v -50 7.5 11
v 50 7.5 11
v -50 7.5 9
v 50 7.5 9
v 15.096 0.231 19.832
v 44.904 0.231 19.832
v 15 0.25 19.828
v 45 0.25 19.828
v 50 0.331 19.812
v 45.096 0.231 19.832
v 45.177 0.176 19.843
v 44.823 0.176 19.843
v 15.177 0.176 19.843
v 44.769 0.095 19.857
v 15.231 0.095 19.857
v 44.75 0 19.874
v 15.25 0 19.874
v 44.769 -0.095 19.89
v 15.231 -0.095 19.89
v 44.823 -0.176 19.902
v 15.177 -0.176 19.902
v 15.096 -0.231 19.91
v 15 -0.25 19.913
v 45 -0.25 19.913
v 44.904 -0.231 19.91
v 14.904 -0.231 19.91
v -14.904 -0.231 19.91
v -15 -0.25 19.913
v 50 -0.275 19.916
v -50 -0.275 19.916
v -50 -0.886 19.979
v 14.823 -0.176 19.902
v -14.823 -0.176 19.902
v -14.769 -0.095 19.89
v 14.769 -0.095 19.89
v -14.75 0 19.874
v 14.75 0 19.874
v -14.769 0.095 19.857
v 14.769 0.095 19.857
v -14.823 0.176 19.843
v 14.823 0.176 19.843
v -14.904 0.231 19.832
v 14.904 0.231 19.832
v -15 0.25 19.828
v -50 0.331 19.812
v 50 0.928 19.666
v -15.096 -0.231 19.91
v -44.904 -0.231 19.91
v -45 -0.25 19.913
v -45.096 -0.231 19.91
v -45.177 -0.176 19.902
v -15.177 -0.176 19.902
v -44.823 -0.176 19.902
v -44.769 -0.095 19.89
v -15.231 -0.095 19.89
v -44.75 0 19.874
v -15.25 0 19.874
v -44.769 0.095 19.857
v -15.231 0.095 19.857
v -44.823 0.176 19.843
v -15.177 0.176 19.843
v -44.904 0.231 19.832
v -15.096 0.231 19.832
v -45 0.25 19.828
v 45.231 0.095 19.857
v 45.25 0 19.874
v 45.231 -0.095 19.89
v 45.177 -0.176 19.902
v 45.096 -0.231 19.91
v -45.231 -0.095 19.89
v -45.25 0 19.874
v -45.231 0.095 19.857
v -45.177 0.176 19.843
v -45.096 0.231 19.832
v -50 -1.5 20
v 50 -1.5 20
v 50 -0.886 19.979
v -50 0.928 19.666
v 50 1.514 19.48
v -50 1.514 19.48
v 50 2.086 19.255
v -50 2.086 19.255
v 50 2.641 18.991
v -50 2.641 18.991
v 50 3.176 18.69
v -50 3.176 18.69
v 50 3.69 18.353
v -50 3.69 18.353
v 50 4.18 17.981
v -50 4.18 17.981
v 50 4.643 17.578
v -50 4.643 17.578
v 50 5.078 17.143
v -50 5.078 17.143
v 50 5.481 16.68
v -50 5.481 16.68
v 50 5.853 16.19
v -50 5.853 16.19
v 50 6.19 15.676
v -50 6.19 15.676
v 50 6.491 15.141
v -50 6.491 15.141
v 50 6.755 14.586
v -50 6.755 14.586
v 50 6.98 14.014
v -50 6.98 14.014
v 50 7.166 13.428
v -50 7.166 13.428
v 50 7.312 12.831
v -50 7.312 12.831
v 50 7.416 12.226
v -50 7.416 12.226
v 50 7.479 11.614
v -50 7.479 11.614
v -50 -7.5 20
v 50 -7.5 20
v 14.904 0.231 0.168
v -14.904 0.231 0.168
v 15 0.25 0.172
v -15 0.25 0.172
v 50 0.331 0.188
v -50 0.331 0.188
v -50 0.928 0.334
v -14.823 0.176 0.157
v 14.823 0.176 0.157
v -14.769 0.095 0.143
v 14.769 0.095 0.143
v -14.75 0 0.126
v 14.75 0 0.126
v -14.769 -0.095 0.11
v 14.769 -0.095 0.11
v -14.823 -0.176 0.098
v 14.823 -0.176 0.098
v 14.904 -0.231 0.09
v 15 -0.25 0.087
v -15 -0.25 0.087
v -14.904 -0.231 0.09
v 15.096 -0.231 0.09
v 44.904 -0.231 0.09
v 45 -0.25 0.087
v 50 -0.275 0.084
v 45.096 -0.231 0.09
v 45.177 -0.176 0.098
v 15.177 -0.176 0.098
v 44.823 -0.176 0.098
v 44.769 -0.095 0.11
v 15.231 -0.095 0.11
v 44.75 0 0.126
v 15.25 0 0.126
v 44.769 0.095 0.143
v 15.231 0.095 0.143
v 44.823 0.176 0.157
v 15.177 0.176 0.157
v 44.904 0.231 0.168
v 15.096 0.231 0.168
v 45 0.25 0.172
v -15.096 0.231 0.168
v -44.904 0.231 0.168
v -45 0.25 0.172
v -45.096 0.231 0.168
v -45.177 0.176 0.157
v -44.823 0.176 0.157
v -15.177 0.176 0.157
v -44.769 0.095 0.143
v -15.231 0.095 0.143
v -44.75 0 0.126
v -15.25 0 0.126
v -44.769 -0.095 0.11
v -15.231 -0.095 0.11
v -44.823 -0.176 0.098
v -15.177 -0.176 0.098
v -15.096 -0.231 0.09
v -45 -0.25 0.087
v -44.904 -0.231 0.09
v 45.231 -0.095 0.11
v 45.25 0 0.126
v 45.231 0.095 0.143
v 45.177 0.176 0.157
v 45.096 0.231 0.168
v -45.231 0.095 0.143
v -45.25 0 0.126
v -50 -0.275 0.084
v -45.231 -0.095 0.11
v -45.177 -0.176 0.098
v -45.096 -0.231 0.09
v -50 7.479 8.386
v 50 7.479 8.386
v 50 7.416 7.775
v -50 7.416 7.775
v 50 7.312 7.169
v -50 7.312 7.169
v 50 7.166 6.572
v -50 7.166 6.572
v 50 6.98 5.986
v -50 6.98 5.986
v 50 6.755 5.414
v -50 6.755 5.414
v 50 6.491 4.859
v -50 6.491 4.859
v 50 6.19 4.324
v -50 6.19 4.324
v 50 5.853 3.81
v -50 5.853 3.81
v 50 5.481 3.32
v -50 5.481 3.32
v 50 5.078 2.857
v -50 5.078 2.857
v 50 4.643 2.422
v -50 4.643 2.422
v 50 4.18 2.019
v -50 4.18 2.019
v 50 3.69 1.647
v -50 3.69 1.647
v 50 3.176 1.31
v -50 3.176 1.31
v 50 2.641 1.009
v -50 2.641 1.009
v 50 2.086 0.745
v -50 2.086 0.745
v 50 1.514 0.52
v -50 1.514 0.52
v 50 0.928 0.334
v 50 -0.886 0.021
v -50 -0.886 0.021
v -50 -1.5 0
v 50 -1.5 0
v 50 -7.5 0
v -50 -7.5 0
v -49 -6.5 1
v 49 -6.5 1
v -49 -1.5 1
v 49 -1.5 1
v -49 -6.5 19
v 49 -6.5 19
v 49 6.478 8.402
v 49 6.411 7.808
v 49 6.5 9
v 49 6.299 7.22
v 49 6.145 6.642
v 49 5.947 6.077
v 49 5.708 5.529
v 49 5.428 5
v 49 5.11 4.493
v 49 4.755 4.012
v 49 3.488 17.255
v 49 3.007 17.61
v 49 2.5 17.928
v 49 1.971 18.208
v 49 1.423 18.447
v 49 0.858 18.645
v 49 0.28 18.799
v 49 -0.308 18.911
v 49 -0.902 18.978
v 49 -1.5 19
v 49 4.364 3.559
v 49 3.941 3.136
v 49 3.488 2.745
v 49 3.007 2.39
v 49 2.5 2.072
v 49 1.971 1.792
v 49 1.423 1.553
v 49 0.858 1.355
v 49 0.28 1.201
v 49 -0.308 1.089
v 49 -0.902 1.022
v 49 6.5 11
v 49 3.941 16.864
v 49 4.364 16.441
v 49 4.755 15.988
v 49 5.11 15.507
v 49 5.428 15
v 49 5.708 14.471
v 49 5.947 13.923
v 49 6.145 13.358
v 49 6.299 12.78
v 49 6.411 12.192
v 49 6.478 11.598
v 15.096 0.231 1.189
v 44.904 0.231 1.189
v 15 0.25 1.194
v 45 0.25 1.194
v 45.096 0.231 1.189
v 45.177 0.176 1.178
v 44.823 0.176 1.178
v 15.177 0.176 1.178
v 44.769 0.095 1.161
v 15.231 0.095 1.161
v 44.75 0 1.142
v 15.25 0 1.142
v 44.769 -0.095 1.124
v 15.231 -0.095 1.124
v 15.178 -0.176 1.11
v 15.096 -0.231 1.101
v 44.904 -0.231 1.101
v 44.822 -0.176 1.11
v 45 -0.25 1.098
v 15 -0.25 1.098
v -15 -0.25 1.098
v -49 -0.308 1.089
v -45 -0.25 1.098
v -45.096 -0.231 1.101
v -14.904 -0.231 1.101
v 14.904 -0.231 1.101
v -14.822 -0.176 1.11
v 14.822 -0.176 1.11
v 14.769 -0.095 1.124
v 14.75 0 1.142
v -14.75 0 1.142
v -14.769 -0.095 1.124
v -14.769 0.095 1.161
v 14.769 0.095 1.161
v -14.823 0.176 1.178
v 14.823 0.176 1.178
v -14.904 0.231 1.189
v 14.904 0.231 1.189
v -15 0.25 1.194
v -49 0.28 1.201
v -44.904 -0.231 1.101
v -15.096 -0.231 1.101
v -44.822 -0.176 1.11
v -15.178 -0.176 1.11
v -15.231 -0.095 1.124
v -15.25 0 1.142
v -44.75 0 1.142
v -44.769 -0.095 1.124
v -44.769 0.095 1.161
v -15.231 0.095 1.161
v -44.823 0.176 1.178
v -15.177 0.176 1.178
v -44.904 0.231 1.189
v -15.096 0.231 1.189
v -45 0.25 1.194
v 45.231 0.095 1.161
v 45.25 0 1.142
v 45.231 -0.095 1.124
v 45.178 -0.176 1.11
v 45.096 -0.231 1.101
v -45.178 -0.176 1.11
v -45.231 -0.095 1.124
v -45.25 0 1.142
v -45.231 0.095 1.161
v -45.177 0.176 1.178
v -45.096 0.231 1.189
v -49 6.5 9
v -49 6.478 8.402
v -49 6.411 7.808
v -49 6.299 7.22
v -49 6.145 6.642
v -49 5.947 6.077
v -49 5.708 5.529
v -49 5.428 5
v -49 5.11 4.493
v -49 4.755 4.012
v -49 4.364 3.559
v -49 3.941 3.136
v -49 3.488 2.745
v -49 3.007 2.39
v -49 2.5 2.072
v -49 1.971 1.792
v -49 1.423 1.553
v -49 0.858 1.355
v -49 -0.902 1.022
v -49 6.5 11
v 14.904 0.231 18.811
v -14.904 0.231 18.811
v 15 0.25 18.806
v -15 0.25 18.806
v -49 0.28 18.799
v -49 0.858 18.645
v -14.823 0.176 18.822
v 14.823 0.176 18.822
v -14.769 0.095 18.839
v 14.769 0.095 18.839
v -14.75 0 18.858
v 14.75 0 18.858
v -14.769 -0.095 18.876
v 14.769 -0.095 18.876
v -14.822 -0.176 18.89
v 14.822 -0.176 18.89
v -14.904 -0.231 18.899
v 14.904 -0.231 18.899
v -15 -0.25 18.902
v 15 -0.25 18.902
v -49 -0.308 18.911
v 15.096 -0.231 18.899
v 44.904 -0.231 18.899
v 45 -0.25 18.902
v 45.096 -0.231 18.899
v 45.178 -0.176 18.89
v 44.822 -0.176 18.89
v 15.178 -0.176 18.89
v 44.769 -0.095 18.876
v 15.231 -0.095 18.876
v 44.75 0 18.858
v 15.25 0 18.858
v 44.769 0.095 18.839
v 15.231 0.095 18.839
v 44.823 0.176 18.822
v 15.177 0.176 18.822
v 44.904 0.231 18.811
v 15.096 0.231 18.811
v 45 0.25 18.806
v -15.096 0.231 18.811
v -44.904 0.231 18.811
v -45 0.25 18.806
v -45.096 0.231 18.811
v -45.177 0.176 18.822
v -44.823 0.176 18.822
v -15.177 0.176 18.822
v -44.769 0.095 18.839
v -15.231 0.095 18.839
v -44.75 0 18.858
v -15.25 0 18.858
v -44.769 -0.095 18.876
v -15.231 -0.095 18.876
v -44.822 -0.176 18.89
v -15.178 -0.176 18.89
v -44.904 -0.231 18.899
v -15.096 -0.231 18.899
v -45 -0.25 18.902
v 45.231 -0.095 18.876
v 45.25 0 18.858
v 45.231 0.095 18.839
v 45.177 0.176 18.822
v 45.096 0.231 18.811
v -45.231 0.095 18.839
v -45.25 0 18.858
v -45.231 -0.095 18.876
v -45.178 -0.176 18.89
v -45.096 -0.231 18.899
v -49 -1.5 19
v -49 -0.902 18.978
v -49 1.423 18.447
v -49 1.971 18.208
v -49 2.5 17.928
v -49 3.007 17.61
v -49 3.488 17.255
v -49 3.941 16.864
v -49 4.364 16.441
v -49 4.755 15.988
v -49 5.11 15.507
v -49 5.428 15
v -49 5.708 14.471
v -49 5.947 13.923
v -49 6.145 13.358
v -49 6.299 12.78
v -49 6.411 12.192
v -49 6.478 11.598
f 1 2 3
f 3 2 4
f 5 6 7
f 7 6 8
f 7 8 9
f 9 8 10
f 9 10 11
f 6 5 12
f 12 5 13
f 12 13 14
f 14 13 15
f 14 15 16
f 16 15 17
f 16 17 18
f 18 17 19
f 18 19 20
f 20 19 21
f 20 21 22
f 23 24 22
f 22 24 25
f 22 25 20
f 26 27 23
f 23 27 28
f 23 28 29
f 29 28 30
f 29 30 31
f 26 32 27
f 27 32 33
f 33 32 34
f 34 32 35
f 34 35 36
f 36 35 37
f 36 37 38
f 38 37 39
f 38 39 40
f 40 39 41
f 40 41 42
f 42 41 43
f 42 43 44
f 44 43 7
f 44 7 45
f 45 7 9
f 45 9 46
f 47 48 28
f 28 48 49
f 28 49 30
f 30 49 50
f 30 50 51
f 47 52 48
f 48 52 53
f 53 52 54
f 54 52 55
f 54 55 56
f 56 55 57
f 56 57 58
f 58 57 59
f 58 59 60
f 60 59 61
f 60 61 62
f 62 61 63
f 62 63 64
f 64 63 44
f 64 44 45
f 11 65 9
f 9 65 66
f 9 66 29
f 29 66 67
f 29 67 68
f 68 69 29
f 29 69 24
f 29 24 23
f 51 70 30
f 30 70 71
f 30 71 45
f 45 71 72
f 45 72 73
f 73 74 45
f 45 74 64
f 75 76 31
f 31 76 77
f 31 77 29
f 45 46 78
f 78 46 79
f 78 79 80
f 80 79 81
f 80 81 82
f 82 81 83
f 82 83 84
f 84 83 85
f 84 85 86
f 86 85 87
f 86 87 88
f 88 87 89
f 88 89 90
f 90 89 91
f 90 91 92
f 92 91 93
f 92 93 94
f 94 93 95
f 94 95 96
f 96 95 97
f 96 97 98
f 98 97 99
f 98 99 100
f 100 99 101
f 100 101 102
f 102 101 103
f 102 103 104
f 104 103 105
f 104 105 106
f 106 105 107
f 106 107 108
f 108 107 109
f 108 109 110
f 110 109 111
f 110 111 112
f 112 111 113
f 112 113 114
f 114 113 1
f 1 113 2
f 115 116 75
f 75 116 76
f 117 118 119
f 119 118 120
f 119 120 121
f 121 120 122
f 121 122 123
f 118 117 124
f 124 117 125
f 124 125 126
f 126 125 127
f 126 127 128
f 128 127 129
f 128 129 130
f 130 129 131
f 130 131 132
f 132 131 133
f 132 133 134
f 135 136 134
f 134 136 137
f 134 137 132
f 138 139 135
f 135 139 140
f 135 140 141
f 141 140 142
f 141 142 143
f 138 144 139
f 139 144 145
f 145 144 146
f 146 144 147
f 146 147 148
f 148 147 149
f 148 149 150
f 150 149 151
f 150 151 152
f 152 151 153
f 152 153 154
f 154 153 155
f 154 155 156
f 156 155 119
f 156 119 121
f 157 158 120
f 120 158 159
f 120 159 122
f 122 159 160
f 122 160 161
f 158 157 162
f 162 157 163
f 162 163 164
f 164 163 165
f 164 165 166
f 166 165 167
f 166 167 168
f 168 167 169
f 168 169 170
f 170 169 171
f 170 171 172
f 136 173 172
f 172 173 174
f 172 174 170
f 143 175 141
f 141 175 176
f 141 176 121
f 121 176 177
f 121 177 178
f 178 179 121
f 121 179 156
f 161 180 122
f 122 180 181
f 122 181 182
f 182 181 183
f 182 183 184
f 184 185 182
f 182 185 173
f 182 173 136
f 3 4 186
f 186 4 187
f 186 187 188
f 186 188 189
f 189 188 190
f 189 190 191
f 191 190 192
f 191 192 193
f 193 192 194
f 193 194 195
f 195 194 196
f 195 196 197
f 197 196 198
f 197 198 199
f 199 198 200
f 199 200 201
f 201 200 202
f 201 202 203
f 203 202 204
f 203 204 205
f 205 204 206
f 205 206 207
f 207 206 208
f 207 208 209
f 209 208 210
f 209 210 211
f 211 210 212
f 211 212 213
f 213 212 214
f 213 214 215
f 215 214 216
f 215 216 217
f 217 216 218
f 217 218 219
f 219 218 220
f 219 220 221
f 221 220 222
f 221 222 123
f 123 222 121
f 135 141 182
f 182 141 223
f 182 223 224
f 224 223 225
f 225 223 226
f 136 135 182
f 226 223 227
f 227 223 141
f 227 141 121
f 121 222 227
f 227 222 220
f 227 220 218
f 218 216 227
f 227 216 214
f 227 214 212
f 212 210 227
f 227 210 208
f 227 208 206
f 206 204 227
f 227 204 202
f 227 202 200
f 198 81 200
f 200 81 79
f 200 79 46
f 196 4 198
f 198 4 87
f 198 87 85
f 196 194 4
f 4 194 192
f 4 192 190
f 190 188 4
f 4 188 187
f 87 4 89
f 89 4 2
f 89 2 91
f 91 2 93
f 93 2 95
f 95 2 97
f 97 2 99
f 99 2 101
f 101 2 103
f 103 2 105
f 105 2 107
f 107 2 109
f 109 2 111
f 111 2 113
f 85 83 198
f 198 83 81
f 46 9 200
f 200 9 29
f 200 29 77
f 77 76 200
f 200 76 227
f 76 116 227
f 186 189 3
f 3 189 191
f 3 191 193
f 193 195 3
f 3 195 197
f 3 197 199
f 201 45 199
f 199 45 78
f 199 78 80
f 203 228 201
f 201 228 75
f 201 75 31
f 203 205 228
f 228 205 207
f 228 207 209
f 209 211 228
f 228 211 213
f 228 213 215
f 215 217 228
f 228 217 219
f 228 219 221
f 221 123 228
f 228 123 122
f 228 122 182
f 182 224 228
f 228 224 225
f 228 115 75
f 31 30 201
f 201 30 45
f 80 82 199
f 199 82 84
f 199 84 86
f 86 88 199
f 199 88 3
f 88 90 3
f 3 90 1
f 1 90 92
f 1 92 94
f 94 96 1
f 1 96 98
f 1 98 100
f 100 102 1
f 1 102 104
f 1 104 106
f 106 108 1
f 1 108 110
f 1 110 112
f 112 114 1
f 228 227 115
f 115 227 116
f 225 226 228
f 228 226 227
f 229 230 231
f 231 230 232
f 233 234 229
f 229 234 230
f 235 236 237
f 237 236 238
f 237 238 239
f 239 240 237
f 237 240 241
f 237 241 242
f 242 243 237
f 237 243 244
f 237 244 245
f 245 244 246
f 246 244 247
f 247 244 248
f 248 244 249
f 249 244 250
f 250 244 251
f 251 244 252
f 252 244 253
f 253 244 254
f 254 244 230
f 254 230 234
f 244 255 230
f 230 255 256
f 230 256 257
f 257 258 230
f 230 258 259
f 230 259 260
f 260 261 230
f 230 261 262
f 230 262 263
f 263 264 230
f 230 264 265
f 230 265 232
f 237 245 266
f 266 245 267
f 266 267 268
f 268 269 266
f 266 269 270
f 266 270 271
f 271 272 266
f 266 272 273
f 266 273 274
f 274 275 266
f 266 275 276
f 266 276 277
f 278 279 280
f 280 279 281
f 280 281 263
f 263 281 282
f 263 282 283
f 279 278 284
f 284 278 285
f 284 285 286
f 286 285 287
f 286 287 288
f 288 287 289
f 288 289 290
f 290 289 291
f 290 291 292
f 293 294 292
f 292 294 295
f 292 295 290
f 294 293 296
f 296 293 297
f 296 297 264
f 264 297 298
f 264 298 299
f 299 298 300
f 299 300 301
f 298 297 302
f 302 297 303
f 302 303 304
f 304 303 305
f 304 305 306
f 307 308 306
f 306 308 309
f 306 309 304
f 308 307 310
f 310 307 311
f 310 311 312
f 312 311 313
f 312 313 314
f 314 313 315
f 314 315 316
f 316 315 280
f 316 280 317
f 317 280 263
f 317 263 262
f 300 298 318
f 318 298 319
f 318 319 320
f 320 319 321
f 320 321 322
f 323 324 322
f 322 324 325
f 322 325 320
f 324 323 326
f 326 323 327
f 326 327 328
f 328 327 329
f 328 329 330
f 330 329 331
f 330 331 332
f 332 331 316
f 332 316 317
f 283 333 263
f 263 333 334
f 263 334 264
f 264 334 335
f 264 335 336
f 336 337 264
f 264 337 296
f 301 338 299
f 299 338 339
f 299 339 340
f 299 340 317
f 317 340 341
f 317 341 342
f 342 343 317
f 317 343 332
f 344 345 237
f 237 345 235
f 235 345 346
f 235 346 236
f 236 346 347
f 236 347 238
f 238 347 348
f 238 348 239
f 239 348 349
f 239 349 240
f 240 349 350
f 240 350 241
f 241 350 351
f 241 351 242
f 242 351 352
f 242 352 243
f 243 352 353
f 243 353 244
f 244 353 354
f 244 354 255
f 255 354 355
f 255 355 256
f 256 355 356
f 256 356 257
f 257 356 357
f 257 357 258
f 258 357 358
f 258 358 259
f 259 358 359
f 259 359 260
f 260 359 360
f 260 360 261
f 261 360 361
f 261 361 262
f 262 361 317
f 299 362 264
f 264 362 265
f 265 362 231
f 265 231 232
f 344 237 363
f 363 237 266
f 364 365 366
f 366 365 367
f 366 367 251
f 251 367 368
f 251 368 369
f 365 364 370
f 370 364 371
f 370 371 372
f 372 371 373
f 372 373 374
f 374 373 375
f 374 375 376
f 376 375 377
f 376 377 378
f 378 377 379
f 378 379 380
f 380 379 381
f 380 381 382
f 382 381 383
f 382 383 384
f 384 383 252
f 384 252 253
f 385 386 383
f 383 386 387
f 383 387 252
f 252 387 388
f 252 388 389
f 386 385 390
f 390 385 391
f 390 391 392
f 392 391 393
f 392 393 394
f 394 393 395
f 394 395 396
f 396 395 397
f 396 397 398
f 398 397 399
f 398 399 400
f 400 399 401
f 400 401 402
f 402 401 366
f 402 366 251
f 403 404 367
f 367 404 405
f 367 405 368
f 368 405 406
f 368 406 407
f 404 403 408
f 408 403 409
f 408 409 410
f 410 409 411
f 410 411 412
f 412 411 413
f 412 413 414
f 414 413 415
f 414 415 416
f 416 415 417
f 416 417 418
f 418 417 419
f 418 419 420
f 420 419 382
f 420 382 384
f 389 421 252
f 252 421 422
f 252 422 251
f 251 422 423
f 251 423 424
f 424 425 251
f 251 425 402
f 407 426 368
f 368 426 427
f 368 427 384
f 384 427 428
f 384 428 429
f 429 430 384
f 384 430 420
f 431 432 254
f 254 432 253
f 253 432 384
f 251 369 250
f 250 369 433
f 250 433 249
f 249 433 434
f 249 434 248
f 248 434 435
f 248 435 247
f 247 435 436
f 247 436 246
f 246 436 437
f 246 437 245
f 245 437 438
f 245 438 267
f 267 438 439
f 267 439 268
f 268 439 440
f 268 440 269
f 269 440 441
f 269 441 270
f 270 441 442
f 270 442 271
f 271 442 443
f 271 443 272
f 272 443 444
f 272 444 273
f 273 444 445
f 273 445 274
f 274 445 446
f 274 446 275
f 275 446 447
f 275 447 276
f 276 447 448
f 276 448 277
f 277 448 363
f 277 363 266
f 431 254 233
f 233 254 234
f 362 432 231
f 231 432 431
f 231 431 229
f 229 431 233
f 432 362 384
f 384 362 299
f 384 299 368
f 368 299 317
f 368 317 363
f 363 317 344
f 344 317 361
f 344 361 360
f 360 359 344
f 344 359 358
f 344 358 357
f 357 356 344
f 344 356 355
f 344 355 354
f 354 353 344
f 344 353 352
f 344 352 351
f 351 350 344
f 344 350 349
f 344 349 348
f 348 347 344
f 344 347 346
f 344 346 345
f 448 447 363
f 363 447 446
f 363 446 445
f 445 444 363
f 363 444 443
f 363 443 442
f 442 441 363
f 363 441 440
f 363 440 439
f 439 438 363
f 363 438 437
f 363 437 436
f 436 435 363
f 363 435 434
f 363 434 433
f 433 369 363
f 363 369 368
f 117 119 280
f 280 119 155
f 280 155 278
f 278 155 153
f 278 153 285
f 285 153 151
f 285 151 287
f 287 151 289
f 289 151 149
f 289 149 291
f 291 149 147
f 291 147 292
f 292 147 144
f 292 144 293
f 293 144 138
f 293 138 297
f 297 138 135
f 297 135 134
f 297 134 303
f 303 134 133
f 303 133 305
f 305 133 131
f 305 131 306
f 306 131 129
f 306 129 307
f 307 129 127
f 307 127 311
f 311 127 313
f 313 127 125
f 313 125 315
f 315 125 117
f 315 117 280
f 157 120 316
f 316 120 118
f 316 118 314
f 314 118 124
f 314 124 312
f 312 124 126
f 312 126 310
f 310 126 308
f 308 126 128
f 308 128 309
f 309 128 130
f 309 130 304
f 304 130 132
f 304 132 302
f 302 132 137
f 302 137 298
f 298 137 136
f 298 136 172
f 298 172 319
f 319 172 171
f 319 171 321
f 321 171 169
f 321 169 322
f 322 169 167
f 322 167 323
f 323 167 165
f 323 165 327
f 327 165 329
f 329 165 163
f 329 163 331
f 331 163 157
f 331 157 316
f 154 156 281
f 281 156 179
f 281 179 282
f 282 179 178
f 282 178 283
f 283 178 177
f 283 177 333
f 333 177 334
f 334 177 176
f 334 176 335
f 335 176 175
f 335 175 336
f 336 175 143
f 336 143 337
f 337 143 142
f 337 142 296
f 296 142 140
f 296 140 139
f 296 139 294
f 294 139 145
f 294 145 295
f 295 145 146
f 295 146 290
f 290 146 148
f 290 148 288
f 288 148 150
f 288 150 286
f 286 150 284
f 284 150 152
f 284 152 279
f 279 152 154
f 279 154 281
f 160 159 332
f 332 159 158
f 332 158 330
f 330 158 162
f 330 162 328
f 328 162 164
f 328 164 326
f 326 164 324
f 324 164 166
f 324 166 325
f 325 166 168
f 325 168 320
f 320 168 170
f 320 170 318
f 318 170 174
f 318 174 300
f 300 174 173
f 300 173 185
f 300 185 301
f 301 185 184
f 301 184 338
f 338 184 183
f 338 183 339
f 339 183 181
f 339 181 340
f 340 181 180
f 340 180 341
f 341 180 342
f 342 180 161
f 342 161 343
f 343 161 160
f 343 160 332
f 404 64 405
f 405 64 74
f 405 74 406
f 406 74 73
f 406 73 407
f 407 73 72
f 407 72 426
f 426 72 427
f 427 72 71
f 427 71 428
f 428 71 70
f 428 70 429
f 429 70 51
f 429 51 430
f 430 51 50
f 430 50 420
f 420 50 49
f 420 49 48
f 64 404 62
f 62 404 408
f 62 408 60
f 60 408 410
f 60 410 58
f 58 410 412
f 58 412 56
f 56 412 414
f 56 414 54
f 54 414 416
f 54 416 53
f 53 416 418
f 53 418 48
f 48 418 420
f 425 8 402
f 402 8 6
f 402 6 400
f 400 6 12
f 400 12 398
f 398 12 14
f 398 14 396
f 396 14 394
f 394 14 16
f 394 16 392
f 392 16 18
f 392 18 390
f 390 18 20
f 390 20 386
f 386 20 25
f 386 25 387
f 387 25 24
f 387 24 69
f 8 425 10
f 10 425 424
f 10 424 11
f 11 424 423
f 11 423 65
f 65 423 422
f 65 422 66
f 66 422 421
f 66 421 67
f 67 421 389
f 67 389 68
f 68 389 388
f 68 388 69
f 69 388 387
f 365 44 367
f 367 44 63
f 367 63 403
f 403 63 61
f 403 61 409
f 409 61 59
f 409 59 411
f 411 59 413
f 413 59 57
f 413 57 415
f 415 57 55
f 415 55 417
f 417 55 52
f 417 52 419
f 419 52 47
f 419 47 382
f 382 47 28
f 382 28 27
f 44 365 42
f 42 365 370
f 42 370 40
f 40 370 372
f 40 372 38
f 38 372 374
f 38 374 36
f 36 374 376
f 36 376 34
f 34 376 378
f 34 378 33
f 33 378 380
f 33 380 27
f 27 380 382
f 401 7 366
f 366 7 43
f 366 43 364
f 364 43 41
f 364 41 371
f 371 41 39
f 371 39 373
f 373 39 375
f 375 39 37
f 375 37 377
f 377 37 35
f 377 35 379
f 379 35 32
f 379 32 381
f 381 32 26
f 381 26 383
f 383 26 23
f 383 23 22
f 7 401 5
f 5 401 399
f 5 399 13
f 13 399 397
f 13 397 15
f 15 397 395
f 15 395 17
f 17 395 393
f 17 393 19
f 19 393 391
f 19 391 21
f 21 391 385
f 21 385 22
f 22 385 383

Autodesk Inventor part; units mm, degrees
ref_plane "YZ Plane" through (0, 0, 0) normal (1, 0, 0) x (0, 1, 0)
ref_plane "XZ Plane" through (0, 0, 0) normal (0, 1, 0) x (-1, 0, 0)
ref_plane "XY Plane" through (0, 0, 0) normal (0, 0, 1) x (1, 0, 0)
sketch "Sketch1" plane through (0, 0, 0) normal (0, 0, 1) x (1, 0, 0)
  line L0 (-50, 7.5) -> (50, 7.5)
  line L1 (50, 7.5) -> (50, -7.5)
  line L2 (50, -7.5) -> (-50, -7.5)
  line L3 (-50, -7.5) -> (-50, 7.5)
  line L4 (-50, 7.5) -> (50, -7.5) construction
  line L5 (50, 7.5) -> (-50, -7.5) construction
  point P0 (0, 0)
  dimension "d0" = 100
  dimension "d1" = 15
extrude "Extrusion1" add sketch "Sketch1" along normal blind 20
sketch "Sketch2" plane through (-50, -7.5, 0) normal (-1, 0, 0) x (0, 0, 1)
  line L0 (0, 0) -> (0, 15) projected
  line L1 (0, 0) -> (20, 0)
  line L2 (20, 0) -> (20, 15) projected
  line L3 (20, 0) -> (20, 6)
  line L4 (11, 15) -> (9, 15)
  line L5 (0, 6) -> (0, 0)
  arc A0 (9, 15) -> (0, 6) centre (9, 6) ccw
  arc A1 (20, 6) -> (11, 15) centre (11, 6) ccw
  point P0 (0, 7.5)
  dimension "d4" = 9
  dimension "d10" = 20
  dimension "d11" = 15
extrude "Extrusion2" cut sketch "Sketch2" against normal through all keep common part
shell "Shell1" thickness 1 removed faces 1 at (-50, 1.5, 10.3333)
extrude "Extrusion3" add sketch "Sketch2" against normal blind 1
sketch "Sketch3" plane through (0, 0, 20) normal (0, 0, 1) x (1, 0, 0)
  line L0 (-50, -7.5) -> (50, -7.5) construction
  line L1 (-50, -7.5) -> (0, -7.5) construction
  line L2 (-50, -7.5) -> (-45, -7.5) construction
  line L3 (-45, -7.5) -> (-45, 7.5) construction
  line L4 (-49, 6.5) -> (49, 6.5) construction
  circle A0 centre (-45, 0) radius 0.25
  line L5 (-45, 0) -> (-15, 0) construction
  circle A1 centre (-15, 0) radius 0.25
  line L6 (-15, 0) -> (15, 0) construction
  circle A2 centre (15, 0) radius 0.25
  line L7 (15, 0) -> (45, 0) construction
  circle A3 centre (45, 0) radius 0.25
  point P0 (0, 0)
  dimension "d12" = 5
  dimension "d13" = 0.5
  dimension "d14" = 30
  dimension "d15" = 0.5
  dimension "d16" = 7.5
  dimension "d17" = 30
  dimension "d18" = 0.5
  dimension "d19" = 30
  dimension "d20" = 0.5
extrude "Extrusion4" cut sketch "Sketch3" against normal through all
properties part number "actuator_tube"
